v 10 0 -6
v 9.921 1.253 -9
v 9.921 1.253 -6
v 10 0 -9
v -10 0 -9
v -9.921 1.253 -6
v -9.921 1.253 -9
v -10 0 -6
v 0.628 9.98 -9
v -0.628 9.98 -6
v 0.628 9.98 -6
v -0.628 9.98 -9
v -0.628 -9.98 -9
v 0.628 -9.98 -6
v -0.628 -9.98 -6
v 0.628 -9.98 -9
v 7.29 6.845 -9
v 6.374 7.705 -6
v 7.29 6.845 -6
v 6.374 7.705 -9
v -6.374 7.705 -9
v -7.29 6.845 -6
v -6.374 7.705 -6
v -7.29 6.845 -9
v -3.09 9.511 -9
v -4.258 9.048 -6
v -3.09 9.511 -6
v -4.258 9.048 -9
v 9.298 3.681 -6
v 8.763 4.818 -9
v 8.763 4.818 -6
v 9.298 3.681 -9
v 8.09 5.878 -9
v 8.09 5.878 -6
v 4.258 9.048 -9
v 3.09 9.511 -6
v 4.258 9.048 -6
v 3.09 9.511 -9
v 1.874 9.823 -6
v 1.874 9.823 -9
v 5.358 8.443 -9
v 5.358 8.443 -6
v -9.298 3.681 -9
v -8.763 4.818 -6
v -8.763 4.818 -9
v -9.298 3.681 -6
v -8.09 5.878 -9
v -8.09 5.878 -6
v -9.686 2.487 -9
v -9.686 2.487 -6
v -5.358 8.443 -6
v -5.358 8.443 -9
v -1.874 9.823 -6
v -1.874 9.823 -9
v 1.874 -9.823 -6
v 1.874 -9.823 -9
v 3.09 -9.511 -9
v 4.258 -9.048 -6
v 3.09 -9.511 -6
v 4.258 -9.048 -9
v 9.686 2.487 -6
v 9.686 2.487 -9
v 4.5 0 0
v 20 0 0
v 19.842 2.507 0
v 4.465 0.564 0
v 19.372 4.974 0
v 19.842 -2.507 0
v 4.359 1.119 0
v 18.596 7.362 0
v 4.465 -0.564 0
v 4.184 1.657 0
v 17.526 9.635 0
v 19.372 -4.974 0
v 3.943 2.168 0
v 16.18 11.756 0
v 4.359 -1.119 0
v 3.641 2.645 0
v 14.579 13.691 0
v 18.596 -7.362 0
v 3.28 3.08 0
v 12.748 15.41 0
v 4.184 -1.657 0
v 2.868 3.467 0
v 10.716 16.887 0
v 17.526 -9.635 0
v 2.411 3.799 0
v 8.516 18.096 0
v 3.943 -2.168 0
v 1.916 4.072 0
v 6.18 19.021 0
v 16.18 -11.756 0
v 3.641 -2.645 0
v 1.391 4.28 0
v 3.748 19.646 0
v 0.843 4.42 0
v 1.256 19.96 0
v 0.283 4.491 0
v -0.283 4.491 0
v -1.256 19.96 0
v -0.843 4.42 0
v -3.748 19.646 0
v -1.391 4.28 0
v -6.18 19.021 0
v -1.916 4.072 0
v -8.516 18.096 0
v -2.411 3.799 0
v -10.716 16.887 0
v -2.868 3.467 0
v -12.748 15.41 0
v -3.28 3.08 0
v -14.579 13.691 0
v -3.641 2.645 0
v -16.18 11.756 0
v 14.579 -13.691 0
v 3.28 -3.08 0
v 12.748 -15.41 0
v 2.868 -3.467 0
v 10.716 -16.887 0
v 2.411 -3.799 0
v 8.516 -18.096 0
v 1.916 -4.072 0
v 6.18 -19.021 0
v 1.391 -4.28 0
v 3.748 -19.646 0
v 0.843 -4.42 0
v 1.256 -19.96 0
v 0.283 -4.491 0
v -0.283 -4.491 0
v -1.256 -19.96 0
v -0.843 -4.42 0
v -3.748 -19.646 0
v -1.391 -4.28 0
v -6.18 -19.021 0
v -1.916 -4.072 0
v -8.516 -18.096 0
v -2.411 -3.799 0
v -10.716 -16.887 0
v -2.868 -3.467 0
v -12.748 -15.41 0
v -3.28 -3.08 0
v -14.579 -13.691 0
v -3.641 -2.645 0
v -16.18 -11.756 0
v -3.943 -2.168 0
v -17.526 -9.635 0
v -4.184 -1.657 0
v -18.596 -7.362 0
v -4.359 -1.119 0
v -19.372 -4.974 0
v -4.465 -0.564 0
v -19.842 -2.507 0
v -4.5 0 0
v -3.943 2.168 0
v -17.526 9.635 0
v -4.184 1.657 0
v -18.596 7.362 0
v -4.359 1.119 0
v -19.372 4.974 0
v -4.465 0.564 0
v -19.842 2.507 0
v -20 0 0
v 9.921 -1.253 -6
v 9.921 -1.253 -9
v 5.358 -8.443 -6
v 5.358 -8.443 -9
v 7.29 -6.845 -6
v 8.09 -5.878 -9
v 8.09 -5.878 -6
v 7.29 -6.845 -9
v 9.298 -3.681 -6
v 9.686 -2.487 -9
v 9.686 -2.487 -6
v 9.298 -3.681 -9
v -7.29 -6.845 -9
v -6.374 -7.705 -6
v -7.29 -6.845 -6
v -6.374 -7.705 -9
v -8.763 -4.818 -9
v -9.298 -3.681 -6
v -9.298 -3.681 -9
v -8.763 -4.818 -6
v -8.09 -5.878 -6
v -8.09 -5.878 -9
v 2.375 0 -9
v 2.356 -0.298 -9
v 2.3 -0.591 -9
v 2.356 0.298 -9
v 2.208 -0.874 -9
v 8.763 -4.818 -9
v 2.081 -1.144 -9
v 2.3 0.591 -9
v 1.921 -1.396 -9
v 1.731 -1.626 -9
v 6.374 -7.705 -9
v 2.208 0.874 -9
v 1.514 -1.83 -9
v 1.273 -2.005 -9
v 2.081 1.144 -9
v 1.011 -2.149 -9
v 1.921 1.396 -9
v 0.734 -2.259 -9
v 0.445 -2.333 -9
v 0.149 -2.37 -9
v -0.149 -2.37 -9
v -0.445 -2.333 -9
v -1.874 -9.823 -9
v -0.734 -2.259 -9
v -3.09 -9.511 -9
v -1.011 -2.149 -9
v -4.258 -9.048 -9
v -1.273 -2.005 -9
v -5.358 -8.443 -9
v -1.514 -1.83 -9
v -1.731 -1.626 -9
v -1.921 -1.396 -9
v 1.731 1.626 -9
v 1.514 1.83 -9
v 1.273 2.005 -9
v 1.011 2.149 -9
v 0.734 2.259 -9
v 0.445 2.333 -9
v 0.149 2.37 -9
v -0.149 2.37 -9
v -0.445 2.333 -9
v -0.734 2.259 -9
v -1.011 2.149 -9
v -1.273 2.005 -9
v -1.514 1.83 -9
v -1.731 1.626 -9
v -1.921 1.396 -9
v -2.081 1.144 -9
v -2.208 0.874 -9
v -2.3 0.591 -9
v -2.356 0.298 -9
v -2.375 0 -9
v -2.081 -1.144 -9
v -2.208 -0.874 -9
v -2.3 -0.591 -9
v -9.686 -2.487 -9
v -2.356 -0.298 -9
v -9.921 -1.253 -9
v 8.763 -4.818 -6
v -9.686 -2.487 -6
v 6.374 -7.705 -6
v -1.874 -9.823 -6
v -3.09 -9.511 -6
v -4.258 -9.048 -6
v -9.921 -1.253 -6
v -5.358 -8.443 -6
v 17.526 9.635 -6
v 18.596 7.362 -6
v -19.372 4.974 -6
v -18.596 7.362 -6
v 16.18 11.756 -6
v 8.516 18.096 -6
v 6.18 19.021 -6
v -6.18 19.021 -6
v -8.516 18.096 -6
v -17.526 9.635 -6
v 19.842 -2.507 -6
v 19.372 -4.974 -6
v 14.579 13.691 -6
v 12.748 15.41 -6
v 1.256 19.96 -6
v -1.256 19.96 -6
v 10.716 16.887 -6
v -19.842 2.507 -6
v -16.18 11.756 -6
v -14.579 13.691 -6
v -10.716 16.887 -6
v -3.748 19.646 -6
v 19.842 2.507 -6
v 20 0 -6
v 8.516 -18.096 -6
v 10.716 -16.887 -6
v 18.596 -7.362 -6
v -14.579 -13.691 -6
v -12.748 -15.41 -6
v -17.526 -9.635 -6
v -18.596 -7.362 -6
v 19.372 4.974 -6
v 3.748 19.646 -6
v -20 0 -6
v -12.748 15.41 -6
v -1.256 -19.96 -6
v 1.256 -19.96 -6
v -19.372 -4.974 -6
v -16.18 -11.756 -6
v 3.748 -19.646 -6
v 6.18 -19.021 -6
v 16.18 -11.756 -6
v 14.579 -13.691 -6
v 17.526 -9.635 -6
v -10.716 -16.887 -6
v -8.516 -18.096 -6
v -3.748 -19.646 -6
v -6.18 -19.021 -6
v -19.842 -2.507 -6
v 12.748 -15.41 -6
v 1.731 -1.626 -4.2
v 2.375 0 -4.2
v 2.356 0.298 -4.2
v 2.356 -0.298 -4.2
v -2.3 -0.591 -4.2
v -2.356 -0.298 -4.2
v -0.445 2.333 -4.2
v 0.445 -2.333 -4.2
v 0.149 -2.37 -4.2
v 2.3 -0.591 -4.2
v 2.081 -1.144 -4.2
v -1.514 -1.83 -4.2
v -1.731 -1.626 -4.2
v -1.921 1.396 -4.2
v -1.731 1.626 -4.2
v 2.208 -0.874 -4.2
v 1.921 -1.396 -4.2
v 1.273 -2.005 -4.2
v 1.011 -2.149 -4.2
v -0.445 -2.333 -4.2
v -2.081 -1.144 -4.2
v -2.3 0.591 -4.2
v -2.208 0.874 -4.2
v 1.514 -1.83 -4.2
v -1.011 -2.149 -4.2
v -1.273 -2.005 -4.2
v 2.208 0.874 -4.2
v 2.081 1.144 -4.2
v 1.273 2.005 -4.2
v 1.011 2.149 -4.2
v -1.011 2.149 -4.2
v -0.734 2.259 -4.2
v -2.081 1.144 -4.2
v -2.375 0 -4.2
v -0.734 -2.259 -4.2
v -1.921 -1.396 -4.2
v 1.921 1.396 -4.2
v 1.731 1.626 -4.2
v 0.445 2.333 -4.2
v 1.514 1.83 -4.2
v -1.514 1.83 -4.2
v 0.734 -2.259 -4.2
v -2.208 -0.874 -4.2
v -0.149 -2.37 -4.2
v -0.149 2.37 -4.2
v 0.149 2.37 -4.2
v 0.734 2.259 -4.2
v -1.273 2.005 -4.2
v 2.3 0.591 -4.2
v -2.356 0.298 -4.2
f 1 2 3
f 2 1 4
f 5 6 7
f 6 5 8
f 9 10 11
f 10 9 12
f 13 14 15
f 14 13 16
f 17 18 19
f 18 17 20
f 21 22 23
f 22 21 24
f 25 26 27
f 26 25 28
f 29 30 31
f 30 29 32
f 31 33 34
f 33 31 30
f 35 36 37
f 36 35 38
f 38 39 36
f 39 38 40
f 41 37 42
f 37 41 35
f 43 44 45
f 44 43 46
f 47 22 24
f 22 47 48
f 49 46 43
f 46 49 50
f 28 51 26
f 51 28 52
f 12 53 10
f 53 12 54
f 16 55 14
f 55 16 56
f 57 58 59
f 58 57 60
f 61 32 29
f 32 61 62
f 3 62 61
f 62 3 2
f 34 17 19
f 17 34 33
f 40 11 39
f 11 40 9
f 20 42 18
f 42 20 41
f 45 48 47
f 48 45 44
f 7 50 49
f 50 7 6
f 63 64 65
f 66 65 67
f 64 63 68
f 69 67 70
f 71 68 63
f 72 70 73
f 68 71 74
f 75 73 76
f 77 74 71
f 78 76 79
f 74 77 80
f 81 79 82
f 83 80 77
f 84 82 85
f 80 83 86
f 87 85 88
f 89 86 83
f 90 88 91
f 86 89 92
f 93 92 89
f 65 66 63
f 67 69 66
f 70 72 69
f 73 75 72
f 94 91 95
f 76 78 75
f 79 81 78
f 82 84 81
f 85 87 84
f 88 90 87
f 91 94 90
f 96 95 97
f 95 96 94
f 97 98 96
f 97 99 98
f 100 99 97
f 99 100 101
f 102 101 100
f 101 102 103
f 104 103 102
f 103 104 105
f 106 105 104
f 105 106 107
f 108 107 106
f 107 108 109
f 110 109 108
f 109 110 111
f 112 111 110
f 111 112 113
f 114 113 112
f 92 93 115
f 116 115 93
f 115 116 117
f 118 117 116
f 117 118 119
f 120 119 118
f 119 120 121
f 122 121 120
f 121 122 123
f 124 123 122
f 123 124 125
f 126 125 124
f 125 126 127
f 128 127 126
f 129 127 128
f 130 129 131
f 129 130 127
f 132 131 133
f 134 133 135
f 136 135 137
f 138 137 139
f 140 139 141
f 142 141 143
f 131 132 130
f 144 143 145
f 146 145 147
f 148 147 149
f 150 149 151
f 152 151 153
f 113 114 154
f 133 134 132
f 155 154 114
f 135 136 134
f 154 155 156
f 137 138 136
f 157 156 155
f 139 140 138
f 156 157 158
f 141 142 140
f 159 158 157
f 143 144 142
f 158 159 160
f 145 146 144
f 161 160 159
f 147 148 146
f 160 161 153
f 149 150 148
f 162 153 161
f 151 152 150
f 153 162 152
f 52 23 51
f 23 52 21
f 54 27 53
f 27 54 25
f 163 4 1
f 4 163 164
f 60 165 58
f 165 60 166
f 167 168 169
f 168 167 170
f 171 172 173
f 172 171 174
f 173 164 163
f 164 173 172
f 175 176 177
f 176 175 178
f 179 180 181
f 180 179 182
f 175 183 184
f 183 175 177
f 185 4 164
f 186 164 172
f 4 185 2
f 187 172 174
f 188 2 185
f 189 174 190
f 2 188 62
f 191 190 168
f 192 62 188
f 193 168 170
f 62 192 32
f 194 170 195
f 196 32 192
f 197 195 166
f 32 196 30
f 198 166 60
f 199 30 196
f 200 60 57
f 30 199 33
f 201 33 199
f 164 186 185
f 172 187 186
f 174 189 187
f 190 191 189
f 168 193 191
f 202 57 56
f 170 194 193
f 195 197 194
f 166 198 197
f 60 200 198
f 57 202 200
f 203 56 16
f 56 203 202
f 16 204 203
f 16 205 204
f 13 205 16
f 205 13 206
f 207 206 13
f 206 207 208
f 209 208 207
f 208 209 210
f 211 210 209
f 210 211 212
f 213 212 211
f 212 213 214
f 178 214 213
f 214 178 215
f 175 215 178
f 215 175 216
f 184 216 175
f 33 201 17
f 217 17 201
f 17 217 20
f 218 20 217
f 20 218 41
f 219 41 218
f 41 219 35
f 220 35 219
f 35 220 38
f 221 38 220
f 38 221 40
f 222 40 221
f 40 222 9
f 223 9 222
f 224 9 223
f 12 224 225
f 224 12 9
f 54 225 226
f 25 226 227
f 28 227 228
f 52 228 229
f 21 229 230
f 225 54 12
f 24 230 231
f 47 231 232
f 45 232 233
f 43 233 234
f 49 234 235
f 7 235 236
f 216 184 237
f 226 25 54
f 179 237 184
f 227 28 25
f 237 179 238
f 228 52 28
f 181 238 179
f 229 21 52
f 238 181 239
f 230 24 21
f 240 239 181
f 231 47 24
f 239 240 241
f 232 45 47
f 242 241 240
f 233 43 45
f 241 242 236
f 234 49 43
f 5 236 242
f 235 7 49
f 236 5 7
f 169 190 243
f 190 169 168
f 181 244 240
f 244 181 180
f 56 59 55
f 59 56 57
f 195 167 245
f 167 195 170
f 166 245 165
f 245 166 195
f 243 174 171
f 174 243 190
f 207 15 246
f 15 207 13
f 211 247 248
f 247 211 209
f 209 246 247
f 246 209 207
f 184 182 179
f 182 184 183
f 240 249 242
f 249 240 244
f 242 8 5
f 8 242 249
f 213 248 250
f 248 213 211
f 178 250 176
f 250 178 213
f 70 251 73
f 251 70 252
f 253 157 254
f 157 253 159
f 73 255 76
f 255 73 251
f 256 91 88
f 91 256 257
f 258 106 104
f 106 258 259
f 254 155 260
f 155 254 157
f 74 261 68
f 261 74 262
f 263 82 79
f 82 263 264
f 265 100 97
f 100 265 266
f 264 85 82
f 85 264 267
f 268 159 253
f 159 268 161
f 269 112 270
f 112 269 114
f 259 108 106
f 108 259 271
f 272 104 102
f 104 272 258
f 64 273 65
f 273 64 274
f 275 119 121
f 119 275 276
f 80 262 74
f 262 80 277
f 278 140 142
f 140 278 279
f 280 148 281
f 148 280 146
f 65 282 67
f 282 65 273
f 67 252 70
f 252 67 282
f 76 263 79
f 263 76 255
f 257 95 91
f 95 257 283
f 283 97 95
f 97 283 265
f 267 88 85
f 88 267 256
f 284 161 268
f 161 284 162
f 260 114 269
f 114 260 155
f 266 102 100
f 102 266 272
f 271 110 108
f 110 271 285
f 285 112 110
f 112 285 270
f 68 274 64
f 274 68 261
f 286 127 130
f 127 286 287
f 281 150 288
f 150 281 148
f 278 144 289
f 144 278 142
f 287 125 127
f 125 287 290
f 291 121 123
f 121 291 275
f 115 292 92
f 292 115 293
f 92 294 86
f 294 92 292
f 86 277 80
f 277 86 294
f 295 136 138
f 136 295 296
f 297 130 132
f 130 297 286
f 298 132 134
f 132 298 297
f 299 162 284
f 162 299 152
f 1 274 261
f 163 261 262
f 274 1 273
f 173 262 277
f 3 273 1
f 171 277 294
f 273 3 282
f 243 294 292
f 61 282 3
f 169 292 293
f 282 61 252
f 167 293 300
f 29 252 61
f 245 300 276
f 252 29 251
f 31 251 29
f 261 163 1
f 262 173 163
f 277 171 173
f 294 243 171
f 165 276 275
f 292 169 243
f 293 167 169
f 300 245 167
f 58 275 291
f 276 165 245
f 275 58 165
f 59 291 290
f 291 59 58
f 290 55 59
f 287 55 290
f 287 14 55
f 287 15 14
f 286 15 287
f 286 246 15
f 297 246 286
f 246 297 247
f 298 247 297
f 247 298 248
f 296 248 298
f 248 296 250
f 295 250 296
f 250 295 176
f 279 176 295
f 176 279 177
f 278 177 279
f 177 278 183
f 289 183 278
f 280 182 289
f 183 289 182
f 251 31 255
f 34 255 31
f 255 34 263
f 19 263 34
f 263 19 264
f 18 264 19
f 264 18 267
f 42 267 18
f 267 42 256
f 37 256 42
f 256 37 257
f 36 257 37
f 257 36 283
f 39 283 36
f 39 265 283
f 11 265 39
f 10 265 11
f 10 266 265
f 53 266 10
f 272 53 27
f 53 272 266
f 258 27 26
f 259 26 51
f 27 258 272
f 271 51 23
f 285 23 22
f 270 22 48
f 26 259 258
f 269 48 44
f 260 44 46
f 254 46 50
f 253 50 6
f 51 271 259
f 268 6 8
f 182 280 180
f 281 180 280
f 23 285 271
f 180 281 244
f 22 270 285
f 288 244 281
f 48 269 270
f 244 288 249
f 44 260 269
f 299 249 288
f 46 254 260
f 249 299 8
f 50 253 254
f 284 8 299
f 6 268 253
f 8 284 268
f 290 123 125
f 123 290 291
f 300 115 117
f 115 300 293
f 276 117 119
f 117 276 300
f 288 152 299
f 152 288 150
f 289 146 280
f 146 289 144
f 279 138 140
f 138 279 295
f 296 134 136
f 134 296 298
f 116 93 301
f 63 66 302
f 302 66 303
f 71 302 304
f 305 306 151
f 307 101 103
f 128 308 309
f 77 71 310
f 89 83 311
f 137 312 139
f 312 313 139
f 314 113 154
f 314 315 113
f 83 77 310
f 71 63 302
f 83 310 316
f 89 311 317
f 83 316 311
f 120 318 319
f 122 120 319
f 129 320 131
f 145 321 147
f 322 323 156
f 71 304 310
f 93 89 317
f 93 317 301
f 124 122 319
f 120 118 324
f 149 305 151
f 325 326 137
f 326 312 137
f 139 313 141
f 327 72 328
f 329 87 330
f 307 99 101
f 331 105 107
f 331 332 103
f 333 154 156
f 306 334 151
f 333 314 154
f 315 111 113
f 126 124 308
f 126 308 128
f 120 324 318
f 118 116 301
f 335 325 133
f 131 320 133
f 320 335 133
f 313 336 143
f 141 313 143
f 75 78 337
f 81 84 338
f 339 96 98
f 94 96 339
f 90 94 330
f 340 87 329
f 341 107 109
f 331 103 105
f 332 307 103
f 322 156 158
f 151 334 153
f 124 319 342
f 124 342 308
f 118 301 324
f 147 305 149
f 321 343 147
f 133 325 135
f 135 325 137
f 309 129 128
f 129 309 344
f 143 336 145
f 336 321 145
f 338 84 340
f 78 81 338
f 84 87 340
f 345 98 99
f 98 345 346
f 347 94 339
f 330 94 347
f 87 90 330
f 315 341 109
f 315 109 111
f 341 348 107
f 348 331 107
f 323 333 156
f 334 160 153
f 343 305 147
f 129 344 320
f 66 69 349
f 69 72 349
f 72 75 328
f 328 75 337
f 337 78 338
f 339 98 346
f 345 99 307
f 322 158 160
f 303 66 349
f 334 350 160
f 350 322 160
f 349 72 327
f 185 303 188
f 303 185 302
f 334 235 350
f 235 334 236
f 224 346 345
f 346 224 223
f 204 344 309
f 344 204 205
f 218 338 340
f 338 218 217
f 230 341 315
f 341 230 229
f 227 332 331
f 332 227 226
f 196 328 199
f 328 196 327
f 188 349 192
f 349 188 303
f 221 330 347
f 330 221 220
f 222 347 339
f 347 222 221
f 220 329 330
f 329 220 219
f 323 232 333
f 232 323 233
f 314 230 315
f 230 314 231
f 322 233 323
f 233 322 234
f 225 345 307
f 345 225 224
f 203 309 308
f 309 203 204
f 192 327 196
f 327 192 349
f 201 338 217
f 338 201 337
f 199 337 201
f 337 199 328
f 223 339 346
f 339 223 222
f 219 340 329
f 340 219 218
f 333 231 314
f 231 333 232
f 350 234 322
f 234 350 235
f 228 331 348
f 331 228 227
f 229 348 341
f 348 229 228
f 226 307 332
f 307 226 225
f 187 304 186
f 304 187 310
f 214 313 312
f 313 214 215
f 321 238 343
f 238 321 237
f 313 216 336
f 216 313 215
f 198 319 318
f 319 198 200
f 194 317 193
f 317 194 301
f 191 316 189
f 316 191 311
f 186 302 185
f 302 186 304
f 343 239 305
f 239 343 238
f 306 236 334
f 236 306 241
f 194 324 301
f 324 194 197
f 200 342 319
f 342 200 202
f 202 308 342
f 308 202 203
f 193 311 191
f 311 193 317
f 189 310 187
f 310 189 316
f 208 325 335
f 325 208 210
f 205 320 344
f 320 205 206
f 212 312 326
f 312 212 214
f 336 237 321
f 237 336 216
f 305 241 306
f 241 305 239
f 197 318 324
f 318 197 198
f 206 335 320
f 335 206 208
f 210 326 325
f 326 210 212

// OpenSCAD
$fn = 50;


difference() {
	union() {
		translate(v = [0, 0, -9.0000000000]) {
			cylinder(h = 9, r = 10.0000000000);
		}
		translate(v = [0, 0, -6.0000000000]) {
			cylinder(h = 6, r = 20.0000000000);
		}
	}
	union() {
		translate(v = [0, 0, 0]) {
			rotate(a = [0, 0, 0]) {
				difference() {
					union() {
						#translate(v = [0, 0, -9.0000000000]) {
							cylinder(h = 9, r = 2.2500000000);
						}
						#translate(v = [0, 0, -4.2000000000]) {
							cylinder(h = 4.2000000000, r = 10.0000000000, r1 = 2.3750000000, r2 = 4.5000000000);
						}
						#translate(v = [0, 0, -9.0000000000]) {
							cylinder(h = 9, r = 2.3750000000);
						}
						#translate(v = [0, 0, -9.0000000000]) {
							cylinder(h = 9, r = 2.2500000000);
						}
					}
					union();
				}
			}
		}
	}
}
